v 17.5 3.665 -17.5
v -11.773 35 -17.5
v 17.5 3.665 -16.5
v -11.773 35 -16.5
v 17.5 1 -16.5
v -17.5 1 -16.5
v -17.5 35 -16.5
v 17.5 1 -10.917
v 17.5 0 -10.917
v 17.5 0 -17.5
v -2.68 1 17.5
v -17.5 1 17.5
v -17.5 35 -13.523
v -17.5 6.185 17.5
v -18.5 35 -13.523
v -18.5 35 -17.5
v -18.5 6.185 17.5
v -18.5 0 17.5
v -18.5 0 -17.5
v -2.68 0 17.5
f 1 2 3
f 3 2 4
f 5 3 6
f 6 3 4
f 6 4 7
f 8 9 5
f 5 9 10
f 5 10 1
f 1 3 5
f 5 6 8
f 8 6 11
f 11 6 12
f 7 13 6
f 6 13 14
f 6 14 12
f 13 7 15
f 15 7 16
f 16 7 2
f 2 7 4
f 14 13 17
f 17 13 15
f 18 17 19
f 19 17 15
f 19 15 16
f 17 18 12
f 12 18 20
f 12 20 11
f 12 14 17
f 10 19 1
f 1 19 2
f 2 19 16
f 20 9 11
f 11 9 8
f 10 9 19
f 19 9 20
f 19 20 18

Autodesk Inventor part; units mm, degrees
ref_plane "YZ Plane" through (0, 0, 0) normal (1, 0, 0) x (0, 1, 0)
ref_plane "XZ Plane" through (0, 0, 0) normal (0, 1, 0) x (-1, 0, 0)
ref_plane "XY Plane" through (0, 0, 0) normal (0, 0, 1) x (1, 0, 0)
sketch "Sketch1" plane through (0, 0, 0) normal (0, 1, 0) x (-1, 0, 0)
  line L0 (17.5, -17.5) -> (-17.5, -17.5) construction
  line L1 (-17.5, -17.5) -> (-17.5, 17.5) construction
  line L2 (-17.5, 17.5) -> (17.5, 17.5) construction
  line L3 (17.5, 17.5) -> (17.5, -17.5) construction
  line L4 (17.5, 17.5) -> (2.6797, 17.5)
  line L5 (2.6797, 17.5) -> (-17.5, -10.9168)
  line L6 (-17.5, -10.9168) -> (-17.5, -17.5)
  line L7 (-17.5, -17.5) -> (17.5, -17.5)
  line L8 (17.5, -17.5) -> (17.5, 17.5)
  point P0 (0, 0)
  dimension "d0" = 35
  dimension "d1" = 35
  dimension "d2" = 17.5
  dimension "d3" = 17.5
extrude "Extrusion1" add sketch "Sketch1" along normal blind 1
sketch "Sketch2" plane through (-17.5, 0, -17.5) normal (-1, 0, 0) x (0, 0, 1)
  line L0 (35, 35) -> (0, 35) construction
  line L1 (0, 35) -> (0, 0) construction
  line L2 (0, 0) -> (35, 0) construction
  line L3 (35, 0) -> (35, 35)
  line L4 (35, 0) -> (35, 6.1852)
  line L5 (35, 6.1852) -> (3.9768, 35)
  line L6 (3.9768, 35) -> (0, 35)
  line L7 (0, 35) -> (0, 0)
  line L8 (0, 0) -> (35, 0)
  point P0 (17.5, 0)
  dimension "d6" = 35
  dimension "d7" = 35
  dimension "d8" = 35
extrude "Extrusion2" add sketch "Sketch2" along normal blind 1
sketch "Sketch3" plane through (17.5, 0, -17.5) normal (0, 0, -1) x (-1, 0, 0)
  line L0 (35, 0) -> (35, 35)
  line L1 (35, 35) -> (29.2734, 35)
  line L2 (29.2734, 35) -> (0, 3.6651)
  line L3 (0, 3.6651) -> (0, 0)
  line L4 (0, 0) -> (35, 0)
  point P0 (17.5, 0)
  dimension "d11" = 35
  dimension "d12" = 35
extrude "Extrusion3" add sketch "Sketch3" against normal blind 1
properties part number "corner_protectipt"
